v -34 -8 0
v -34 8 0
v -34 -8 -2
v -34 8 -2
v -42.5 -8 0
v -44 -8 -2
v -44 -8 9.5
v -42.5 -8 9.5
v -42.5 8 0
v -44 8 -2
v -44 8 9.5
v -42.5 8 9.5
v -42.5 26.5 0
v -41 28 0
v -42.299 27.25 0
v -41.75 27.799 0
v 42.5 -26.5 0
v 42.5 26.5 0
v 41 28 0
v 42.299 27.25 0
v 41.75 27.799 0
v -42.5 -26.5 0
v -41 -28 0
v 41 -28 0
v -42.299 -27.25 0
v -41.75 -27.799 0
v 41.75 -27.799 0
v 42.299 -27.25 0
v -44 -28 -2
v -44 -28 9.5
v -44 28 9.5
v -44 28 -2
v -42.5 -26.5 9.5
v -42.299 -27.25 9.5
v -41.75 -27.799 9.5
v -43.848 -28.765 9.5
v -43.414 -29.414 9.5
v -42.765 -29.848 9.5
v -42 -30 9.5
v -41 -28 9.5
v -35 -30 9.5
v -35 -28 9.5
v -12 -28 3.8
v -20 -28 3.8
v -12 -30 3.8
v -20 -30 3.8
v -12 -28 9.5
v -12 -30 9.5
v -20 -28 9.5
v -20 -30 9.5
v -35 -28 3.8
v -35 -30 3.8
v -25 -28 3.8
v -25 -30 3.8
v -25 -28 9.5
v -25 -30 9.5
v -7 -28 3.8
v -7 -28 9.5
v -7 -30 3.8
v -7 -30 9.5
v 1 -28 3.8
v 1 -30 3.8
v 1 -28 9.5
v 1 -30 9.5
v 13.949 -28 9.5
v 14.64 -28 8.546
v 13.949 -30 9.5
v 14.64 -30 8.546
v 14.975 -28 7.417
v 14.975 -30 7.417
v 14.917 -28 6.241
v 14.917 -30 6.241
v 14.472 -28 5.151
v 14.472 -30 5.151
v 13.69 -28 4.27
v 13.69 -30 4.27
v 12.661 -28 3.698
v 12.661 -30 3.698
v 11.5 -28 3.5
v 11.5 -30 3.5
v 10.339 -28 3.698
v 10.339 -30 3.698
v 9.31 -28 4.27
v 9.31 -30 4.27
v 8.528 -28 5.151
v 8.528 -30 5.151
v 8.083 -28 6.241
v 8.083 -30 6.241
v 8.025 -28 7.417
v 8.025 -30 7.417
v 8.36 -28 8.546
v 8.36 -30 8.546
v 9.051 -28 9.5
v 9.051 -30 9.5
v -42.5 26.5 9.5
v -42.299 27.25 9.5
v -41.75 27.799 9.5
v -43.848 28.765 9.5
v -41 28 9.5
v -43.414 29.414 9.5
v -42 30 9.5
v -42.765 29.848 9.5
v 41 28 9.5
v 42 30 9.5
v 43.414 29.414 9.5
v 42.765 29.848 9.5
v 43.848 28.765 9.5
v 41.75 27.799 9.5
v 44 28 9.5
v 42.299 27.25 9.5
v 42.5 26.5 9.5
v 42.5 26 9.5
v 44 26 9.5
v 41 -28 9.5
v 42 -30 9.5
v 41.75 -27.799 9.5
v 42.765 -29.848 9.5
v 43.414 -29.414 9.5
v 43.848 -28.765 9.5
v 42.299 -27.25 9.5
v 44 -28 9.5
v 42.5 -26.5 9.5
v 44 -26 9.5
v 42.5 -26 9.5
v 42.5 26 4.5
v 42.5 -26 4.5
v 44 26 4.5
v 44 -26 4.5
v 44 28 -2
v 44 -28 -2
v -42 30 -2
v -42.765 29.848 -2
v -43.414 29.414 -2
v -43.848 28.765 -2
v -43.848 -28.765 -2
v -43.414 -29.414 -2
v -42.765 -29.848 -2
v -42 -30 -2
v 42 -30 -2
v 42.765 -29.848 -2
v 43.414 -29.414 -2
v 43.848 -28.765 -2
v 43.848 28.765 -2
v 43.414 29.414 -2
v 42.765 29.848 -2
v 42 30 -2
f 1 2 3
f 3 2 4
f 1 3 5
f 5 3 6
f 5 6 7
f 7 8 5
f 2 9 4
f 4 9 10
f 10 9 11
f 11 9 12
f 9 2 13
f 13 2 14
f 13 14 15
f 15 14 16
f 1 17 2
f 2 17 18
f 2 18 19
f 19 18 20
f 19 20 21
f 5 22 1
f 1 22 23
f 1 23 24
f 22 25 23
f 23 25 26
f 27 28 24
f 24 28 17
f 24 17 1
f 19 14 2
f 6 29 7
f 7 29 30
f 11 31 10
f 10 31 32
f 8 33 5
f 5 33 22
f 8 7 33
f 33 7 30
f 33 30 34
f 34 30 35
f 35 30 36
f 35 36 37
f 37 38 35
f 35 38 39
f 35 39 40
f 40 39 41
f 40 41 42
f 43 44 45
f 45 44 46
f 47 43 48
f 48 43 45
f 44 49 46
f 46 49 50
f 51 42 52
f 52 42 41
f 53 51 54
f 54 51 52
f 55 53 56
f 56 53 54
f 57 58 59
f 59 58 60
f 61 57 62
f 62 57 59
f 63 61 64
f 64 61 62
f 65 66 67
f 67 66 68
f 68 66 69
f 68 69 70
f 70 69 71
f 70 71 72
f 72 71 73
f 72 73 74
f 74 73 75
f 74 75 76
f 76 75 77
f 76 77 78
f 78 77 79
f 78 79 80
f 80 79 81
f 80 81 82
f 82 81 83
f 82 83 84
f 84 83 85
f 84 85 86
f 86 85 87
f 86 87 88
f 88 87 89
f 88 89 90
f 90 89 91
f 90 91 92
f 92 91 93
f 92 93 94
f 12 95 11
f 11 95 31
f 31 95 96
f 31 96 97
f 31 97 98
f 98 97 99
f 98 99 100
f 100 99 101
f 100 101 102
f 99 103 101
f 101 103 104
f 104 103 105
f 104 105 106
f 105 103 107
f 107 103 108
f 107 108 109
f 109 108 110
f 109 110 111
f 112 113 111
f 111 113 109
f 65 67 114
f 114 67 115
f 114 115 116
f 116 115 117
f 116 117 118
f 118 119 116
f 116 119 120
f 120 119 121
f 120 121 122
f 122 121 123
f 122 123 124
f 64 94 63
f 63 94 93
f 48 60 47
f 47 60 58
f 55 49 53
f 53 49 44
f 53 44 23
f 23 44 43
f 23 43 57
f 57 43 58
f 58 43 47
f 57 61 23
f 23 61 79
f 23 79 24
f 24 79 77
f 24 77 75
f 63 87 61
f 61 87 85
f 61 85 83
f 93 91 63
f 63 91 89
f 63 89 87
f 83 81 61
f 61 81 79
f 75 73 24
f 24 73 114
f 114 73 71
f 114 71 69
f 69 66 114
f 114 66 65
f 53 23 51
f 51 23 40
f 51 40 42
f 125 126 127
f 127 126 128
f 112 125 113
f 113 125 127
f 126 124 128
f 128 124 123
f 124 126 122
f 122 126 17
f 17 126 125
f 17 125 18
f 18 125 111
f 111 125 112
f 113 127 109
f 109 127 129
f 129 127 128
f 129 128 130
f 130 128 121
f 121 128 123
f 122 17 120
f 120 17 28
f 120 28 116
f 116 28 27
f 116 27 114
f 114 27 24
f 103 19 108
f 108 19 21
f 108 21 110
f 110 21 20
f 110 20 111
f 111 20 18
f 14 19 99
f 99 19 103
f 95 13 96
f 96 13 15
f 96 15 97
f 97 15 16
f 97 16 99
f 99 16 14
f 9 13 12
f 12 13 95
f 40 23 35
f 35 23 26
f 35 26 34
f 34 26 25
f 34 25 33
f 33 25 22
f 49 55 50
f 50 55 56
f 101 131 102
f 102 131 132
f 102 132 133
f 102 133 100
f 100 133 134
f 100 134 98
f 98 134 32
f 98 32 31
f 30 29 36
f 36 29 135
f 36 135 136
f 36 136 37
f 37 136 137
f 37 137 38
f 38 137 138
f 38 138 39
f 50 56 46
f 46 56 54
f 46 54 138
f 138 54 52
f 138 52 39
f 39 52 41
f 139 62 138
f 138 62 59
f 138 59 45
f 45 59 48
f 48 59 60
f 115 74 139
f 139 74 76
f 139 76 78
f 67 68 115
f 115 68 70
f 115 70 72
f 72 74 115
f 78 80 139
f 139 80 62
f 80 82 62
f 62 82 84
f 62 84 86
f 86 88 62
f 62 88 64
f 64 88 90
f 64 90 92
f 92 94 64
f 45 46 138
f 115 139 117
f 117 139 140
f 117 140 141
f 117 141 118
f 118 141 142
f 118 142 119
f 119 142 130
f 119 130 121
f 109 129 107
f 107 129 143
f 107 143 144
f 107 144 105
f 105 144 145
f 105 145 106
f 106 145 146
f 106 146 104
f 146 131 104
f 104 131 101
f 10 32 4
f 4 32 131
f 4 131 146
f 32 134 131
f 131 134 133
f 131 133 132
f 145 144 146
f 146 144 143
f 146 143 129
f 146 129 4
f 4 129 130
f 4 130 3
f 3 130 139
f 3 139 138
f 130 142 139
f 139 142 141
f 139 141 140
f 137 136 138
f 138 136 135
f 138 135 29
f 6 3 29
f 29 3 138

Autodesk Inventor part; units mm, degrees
ref_plane "YZ Plane" through (0, 0, 0) normal (1, 0, 0) x (0, 1, 0)
ref_plane "XZ Plane" through (0, 0, 0) normal (0, 1, 0) x (-1, 0, 0)
ref_plane "XY Plane" through (0, 0, 0) normal (0, 0, 1) x (1, 0, 0)
sketch "Sketch1" plane through (0, 0, 0) normal (0, 0, 1) x (1, 0, 0)
  line L0 (-42, 30) -> (42, 30)
  line L1 (44, 28) -> (44, -28)
  line L2 (42, -30) -> (-42, -30)
  line L3 (-44, -28) -> (-44, 28)
  line L4 (-44, 30) -> (44, -30) construction
  line L5 (44, 30) -> (-44, -30) construction
  line L6 (-41.0667, 28) -> (41.0667, 28)
  line L7 (42.5, 26.5) -> (42.5, -26.5)
  line L8 (41.0667, -28) -> (-41.0667, -28)
  line L9 (-42.5, -26.5) -> (-42.5, 26.5)
  line L10 (-42.5, 28) -> (42.5, -28) construction
  line L11 (42.5, 28) -> (-42.5, -28) construction
  arc A0 (-41, 28) -> (-42.5, 26.5) centre (-41, 26.5) ccw
  arc A1 (42.5, 26.5) -> (41, 28) centre (41, 26.5) ccw
  arc A2 (41, -28) -> (42.5, -26.5) centre (41, -26.5) ccw
  arc A3 (-42.5, -26.5) -> (-41, -28) centre (-41, -26.5) ccw
  arc A4 (-44, -28) -> (-42, -30) centre (-42, -28) ccw
  arc A5 (-42, 30) -> (-44, 28) centre (-42, 28) ccw
  arc A6 (44, 28) -> (42, 30) centre (42, 28) ccw
  arc A7 (42, -30) -> (44, -28) centre (42, -28) ccw
  point P0 (0, 0)
  dimension "d0" = 88
  dimension "d1" = 60
  dimension "d2" = 85
  dimension "d3" = 56
  dimension "d4" = 3
  dimension "d5" = 3
  dimension "d6" = 2
extrude "Extrusion1" add sketch "Sketch1" against normal blind 2 contours L0 A6 L1 A7 L2 A4 L3 A5 | L6 A1 L7 A2 L8 A3 L9 A0
extrude "Extrusion2" add sketch "Sketch1" along normal blind 9.5
sketch "Sketch2" plane through (44, -28, -2) normal (1, 0, 0) x (0, 0, -1)
  point P0 (-2, 28)
sketch "Sketch3" plane through (44, -28, -2) normal (1, 0, 0) x (0, 0, -1)
  line L0 (0, -2) -> (-11.5, -2) projected
  line L1 (-11.5, -2) -> (-11.5, 2)
  line L2 (-11.5, 1.5) -> (-11.5, 54.5) projected
  line L3 (-11.5, 2) -> (-6.5, 2)
  line L4 (-6.5, 2) -> (-6.5, 58)
  line L5 (0, 58) -> (-11.5, 58) projected
  line L6 (-11.5, 58) -> (-11.5, 54)
  line L7 (-11.5, 54) -> (-6.5, 54)
  line L8 (-11.5, 54) -> (-11.5, 2)
  point P0 (-2, 28)
  dimension "d11" = 4
  dimension "d12" = 5
  dimension "d13" = 4
  dimension "d14" = 53
extrude "Extrusion3" cut sketch "Sketch3" against normal mid plane 9.5 contours L2 L7 L4 L3
sketch "Sketch4" plane through (-42, -30, -2) normal (0, -1, 0) x (1, 0, 0)
  line L0 (84, 0) -> (86, 0) projected
  circle A0 centre (53.5, 9) radius 3.5
  line L1 (18.9875, 0) -> (24.4875, 0)
  line L2 (-2, 0) -> (-2, 11.5) projected
  line L3 (43, 5.8) -> (43, 11.5)
  line L4 (35, 5.8) -> (35, 11.5)
  line L5 (30, 5.8) -> (30, 11.5)
  line L6 (22, 5.8) -> (22, 11.5)
  line L7 (17, 5.8) -> (17, 11.5)
  line L8 (7, 5.8) -> (7, 11.5)
  line L9 (83, 11.5) -> (1, 11.5) projected
  line L10 (17, 11.5) -> (7, 11.5)
  line L11 (22, 11.5) -> (30, 11.5)
  line L12 (35, 11.5) -> (43, 11.5)
  line L13 (86, 0) -> (86, 11.5) projected
  line L14 (84, 0) -> (0, 0) projected
  line L15 (7, 5.8) -> (17, 5.8)
  line L16 (22, 5.8) -> (30, 5.8)
  line L17 (35, 5.8) -> (43, 5.8)
  point P0 (42, 2)
  point P1 (55.9495, 11.5)
  point P2 (51.0505, 11.5)
  dimension "d19" = 7
  dimension "d22" = 8
  dimension "d23" = 5
  dimension "d24" = 8
  dimension "d25" = 5
  dimension "d26" = 10
  dimension "d27" = 32.5
  dimension "d28" = 9
  dimension "d29" = 5.8
  dimension "d38" = 10.5
extrude "Extrusion4" cut sketch "Sketch4" against normal blind 9.5 contours A0 L9 | L7 L15 L8 L9 | L5 L16 L6 L9 | L3 L17 L4 L9 picked at (52.2452, 9.1659)
sketch "Sketch5" plane through (0, 0, -2) normal (0, 0, -1) x (-1, 0, 0)
  line L0 (44, -8) -> (34, -8)
  line L1 (34, -8) -> (34, 8)
  line L2 (34, 8) -> (44, 8)
  line L3 (44, 8) -> (44, -8)
  line L4 (-42, -30) -> (42, -30) projected
  line L5 (42, 30) -> (-42, 30) projected
  line L6 (44, -28) -> (44, 28) projected
  point P0 (0, 0)
  dimension "d32" = 22
  dimension "d33" = 22
  dimension "d34" = 0
  dimension "d35" = 10
extrude "Extrusion5" cut sketch "Sketch5" against normal blind 15
properties part number "Pi 4 Case - Back Panel"
